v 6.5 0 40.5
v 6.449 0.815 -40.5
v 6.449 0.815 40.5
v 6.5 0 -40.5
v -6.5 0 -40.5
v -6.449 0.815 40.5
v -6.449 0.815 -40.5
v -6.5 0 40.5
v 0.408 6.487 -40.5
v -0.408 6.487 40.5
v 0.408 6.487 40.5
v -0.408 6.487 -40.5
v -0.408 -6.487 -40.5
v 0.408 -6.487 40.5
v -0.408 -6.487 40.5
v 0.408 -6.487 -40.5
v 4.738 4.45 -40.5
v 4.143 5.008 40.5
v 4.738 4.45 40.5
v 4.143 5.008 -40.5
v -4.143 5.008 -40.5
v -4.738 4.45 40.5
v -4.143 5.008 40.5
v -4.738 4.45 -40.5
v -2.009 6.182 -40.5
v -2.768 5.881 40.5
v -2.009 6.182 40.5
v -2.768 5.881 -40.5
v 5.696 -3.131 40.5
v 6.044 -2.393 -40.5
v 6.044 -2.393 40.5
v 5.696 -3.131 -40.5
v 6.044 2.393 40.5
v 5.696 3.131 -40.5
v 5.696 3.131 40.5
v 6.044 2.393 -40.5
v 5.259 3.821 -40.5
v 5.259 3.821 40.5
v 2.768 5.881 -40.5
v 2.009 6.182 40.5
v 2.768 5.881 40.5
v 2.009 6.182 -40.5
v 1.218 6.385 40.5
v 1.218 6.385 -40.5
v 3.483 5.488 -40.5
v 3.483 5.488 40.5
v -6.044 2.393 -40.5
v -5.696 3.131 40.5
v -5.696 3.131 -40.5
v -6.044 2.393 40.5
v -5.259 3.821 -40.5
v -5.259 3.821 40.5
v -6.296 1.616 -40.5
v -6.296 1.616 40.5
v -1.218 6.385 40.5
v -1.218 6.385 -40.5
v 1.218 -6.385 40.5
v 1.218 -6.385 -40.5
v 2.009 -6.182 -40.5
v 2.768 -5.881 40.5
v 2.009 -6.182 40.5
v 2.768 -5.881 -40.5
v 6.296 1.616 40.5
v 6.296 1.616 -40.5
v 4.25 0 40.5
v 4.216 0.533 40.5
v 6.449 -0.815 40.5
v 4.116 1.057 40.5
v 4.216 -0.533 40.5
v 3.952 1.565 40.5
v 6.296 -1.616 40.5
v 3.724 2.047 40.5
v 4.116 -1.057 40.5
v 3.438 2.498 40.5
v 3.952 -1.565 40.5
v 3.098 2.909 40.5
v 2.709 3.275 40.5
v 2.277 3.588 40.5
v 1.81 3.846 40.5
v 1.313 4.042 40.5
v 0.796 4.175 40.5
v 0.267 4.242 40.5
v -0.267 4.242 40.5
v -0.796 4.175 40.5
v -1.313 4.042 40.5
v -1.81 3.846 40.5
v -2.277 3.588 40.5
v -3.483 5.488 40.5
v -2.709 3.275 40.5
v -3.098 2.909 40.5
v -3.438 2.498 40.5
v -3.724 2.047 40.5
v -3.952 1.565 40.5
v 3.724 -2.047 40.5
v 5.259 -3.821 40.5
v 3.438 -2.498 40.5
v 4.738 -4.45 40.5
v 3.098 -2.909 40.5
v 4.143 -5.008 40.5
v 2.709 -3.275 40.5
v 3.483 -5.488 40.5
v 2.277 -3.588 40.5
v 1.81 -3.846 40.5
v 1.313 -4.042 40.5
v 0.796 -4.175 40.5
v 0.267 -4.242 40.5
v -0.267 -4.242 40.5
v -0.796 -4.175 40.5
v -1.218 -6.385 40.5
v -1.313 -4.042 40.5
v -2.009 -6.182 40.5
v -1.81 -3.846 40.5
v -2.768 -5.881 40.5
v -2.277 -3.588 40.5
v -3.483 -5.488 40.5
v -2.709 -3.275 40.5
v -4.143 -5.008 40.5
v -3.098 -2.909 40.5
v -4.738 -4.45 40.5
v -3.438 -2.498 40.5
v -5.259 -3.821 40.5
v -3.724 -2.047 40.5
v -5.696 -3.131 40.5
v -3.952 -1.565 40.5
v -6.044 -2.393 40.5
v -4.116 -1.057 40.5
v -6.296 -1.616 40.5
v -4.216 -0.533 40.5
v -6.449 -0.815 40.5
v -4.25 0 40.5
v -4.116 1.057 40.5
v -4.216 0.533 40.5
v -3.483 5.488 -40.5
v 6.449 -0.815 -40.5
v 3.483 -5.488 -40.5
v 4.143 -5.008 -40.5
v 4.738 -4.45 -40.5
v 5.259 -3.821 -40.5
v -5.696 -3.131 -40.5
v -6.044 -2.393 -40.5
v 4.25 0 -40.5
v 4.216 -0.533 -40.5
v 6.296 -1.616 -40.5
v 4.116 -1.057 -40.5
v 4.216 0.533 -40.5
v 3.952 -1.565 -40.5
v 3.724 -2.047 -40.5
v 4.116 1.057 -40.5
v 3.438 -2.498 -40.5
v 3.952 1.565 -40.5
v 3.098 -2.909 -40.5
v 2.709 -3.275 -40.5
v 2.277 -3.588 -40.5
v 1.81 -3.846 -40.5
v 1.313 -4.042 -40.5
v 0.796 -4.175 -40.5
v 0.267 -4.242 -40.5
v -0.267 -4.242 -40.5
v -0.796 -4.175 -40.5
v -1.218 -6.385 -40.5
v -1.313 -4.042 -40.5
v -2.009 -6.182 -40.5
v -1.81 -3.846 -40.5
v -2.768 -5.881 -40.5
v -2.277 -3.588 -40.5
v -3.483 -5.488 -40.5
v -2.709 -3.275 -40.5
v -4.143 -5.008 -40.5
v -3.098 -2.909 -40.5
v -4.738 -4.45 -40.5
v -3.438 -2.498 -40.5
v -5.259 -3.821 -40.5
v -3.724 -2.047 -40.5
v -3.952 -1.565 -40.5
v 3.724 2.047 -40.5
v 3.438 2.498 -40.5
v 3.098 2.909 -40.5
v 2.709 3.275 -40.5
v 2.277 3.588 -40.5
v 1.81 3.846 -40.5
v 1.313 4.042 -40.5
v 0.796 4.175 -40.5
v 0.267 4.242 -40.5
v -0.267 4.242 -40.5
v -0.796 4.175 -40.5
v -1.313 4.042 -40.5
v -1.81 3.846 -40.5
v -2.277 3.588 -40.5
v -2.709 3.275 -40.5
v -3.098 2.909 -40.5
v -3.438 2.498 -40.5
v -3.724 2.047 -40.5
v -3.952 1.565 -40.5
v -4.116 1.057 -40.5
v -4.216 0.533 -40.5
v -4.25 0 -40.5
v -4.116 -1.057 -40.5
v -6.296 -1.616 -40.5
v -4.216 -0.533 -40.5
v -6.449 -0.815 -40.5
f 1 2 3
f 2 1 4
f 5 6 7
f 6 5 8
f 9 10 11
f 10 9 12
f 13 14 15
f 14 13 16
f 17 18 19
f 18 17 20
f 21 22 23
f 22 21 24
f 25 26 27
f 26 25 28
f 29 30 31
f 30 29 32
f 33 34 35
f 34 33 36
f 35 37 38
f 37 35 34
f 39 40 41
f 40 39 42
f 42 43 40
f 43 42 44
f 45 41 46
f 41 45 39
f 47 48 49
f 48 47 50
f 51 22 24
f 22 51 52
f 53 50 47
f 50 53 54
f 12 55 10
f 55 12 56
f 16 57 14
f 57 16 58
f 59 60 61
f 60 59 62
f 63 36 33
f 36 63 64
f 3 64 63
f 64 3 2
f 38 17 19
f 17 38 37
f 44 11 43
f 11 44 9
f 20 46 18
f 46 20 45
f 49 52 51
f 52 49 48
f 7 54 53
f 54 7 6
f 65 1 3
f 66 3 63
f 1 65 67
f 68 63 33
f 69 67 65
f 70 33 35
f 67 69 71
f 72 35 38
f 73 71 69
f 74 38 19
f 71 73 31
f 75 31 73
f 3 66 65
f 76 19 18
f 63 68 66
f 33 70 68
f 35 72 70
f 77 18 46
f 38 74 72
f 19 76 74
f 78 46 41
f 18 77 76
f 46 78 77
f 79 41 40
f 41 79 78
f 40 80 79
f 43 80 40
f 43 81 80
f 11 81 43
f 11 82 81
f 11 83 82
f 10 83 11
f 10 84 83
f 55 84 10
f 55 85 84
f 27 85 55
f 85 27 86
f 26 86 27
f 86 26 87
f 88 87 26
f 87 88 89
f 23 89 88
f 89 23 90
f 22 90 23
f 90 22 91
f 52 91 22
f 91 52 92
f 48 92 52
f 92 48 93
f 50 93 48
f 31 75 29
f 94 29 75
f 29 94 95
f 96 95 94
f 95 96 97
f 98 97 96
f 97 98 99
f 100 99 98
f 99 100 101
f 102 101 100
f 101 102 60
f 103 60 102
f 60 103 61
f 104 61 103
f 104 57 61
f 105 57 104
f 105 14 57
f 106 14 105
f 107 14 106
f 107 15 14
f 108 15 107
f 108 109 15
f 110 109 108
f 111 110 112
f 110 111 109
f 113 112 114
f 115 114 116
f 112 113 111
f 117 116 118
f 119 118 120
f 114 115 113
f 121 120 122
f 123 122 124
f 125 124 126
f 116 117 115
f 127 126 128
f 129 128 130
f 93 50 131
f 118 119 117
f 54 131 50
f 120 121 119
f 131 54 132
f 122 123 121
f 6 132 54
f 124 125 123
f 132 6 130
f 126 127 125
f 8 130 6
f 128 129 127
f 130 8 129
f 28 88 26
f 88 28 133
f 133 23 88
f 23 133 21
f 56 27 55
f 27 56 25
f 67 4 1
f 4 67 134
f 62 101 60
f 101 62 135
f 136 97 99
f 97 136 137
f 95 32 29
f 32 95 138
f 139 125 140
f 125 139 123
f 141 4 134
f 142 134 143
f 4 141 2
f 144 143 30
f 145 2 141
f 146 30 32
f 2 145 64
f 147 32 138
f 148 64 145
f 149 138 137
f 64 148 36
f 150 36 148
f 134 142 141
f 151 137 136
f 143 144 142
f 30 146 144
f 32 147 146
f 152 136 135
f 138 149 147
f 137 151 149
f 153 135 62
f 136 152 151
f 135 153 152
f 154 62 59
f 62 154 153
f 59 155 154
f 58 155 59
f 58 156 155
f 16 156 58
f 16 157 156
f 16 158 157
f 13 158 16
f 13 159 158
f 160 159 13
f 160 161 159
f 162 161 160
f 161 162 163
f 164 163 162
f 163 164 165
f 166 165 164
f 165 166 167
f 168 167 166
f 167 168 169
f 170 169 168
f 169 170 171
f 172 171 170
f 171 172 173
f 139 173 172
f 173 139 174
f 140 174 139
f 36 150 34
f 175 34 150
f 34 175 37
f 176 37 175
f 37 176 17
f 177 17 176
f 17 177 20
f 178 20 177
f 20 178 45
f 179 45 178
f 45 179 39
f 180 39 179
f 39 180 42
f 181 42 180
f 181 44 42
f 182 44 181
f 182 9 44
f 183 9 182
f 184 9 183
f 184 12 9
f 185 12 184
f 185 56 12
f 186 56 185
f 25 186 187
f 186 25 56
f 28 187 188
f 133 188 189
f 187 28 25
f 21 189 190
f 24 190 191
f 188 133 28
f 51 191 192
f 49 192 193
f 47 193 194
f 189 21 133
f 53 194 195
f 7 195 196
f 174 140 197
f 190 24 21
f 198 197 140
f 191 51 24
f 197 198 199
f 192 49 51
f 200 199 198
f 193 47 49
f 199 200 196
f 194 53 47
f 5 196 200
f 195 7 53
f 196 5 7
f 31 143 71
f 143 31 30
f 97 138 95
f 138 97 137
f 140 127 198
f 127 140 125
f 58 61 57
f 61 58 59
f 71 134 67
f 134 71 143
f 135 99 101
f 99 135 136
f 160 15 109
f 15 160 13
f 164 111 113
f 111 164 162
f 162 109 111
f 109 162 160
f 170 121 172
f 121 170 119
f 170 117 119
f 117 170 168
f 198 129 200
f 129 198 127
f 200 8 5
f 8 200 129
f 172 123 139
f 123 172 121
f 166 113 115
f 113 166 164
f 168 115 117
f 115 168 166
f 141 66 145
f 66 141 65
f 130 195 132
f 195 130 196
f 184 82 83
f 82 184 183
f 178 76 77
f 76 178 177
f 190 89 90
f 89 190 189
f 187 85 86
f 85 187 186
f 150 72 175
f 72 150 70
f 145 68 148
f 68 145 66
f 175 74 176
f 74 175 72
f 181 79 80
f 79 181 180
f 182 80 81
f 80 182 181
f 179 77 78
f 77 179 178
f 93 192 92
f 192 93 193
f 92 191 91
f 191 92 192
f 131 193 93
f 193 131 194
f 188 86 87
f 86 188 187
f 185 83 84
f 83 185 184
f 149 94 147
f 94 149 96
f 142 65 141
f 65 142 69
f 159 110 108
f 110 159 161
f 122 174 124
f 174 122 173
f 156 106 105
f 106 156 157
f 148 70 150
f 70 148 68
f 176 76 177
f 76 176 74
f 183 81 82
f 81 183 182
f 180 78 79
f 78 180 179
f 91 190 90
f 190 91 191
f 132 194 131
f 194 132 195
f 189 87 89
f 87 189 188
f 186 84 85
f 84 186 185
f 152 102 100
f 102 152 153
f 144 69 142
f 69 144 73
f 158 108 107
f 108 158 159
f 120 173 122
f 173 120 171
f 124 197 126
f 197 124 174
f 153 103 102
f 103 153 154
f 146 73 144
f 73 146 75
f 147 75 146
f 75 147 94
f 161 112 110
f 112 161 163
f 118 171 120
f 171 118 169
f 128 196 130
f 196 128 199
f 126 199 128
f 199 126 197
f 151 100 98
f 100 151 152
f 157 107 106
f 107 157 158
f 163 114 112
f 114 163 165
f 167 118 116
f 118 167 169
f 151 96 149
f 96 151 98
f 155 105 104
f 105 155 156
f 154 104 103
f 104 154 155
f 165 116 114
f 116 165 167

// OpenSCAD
$fn = 50;


difference() {
	union() {
		translate(v = [0, 0, -40.5000000000]) {
			cylinder(h = 81, r = 6.5000000000);
		}
	}
	union() {
		translate(v = [0, 0, -100.0000000000]) {
			cylinder(h = 200, r = 4.2500000000);
		}
	}
}
